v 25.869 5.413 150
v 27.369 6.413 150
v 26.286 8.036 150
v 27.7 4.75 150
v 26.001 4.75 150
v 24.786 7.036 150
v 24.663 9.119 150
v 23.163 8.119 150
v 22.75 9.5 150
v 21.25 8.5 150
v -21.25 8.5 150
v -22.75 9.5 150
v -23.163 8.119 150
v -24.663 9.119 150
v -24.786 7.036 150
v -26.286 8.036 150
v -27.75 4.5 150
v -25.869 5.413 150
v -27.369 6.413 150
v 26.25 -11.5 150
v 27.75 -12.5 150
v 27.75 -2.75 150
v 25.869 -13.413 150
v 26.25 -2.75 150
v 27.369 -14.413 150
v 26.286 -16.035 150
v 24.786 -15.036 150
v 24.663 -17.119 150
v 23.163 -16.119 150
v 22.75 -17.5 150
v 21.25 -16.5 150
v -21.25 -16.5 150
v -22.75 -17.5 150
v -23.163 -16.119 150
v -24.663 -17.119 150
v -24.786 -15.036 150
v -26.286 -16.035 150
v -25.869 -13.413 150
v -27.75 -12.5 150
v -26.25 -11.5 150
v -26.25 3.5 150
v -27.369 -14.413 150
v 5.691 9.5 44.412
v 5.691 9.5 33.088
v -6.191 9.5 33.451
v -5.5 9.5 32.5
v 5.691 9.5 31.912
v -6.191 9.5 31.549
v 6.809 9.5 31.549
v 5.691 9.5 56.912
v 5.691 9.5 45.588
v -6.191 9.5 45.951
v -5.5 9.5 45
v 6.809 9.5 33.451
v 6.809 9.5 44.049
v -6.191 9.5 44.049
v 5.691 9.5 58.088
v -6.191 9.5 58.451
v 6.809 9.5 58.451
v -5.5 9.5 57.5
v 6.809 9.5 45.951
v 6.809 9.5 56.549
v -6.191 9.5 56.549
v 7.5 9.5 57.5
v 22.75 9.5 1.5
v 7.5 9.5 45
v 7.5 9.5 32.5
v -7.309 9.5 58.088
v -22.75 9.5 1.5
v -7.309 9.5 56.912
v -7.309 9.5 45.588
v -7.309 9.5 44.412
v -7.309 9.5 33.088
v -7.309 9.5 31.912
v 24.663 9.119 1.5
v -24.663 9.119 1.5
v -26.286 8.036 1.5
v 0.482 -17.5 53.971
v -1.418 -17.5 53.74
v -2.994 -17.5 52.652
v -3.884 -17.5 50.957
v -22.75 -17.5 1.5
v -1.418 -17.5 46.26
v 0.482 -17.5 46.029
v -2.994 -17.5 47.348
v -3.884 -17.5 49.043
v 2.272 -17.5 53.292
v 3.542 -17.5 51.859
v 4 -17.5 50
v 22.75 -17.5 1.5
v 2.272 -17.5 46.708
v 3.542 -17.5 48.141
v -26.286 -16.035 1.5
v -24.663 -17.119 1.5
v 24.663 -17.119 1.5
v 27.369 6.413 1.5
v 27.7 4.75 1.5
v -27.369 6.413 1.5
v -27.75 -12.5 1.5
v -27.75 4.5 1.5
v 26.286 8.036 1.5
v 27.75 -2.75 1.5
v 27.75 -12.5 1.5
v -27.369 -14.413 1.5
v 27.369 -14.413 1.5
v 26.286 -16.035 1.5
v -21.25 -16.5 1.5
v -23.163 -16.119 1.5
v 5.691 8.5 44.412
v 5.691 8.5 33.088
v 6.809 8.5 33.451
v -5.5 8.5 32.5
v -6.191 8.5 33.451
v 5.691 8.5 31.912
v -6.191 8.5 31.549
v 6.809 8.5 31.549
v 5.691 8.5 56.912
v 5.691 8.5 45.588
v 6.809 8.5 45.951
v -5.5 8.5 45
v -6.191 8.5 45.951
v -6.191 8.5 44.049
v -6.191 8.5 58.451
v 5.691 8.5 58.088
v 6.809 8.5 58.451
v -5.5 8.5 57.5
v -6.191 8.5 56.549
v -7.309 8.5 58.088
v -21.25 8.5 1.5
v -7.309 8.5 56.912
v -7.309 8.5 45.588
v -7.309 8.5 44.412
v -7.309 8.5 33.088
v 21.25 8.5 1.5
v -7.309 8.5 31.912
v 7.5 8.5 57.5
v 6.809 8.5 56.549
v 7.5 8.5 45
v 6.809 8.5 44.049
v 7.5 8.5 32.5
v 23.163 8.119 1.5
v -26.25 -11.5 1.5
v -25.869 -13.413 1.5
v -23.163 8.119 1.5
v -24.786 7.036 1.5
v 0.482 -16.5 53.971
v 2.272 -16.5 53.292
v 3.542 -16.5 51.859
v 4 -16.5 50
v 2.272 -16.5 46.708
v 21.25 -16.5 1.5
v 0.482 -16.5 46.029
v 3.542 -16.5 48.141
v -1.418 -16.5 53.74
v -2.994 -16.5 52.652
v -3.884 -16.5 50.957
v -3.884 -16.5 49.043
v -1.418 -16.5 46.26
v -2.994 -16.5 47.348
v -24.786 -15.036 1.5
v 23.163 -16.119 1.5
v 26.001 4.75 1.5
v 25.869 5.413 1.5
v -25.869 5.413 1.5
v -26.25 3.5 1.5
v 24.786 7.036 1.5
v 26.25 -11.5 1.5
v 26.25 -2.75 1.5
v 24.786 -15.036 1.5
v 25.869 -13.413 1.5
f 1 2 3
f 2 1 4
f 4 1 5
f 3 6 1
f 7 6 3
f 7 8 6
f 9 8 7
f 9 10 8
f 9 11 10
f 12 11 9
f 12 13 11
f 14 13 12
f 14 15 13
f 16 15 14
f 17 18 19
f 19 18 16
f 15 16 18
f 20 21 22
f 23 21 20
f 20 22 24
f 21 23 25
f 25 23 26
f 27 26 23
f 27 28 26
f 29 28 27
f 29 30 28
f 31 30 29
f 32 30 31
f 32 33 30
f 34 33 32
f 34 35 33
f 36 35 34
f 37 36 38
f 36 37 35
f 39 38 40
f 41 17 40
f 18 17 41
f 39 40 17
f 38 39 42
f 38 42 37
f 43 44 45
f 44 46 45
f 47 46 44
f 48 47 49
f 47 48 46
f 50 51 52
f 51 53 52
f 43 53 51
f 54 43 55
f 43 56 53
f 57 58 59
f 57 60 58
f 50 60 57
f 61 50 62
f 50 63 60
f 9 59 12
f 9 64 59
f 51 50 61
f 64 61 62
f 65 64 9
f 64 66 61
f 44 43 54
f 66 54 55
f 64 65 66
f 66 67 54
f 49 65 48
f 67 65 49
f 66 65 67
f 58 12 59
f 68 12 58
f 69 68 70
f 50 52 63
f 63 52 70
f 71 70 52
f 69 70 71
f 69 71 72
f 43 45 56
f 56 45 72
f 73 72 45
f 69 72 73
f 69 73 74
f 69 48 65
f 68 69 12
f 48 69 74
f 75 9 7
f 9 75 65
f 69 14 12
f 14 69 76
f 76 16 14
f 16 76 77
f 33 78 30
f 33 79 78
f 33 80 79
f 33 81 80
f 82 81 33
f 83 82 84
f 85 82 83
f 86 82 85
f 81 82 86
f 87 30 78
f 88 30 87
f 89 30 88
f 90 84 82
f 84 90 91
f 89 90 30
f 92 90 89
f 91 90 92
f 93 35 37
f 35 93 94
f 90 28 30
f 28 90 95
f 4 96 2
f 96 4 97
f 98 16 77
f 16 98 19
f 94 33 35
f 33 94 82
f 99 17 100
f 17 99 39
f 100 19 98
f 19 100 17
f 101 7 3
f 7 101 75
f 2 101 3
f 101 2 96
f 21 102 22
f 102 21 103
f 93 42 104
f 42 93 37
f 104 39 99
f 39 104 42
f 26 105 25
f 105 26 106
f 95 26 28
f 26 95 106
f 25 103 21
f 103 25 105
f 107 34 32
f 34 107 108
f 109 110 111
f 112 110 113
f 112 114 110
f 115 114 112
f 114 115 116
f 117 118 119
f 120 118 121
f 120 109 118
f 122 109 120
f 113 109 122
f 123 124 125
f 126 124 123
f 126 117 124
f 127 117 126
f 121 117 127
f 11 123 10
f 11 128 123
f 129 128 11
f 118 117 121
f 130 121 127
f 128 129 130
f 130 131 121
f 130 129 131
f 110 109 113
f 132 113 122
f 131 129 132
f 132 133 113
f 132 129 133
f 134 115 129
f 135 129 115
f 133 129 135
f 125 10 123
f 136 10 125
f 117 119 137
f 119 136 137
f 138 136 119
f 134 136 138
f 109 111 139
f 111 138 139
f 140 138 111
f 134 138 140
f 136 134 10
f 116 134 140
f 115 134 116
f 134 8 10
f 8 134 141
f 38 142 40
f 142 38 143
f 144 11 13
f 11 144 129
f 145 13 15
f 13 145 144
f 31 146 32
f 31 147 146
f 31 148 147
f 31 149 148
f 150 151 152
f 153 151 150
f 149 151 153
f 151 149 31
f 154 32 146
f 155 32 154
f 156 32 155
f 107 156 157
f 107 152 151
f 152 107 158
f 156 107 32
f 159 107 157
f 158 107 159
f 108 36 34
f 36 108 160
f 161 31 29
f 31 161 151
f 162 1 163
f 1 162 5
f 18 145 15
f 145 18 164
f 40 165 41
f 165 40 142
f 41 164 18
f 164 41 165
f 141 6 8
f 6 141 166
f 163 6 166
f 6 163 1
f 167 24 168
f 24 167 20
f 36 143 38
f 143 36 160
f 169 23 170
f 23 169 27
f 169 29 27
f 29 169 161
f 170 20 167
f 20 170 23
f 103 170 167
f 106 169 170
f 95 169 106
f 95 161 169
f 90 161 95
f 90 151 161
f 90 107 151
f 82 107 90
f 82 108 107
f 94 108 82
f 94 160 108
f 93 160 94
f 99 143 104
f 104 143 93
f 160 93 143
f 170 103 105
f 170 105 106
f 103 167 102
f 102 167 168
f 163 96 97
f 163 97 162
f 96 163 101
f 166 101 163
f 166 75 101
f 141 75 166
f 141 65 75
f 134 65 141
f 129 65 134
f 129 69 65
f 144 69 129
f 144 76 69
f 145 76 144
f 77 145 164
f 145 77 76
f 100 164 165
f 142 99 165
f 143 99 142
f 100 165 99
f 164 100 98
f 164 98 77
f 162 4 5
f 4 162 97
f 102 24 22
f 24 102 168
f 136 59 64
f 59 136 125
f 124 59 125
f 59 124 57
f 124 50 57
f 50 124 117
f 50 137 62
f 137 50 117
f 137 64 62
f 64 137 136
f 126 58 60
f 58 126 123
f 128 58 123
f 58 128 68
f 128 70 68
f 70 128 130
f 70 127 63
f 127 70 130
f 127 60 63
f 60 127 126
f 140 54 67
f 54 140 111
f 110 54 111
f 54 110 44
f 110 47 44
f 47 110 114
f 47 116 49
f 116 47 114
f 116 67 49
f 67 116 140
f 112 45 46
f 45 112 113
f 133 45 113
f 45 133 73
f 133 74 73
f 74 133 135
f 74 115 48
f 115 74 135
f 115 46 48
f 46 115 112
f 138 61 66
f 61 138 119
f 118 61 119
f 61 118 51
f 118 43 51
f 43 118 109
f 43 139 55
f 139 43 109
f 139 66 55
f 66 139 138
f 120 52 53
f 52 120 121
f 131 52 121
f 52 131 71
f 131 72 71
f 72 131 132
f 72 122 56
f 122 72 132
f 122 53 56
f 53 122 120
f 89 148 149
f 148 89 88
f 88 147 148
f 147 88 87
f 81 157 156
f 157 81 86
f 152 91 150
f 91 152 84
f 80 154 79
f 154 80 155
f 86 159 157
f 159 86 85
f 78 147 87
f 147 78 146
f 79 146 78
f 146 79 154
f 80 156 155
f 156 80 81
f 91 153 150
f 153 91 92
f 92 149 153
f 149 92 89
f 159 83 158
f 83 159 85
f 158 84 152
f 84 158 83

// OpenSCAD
difference() {
    // Outer volume
    hull(){
        translate([-22.75,4.5,0]) cylinder(r=5,h=150);
        translate([-22.75,-12.5,0]) cylinder(r=5,h=150);
        translate([22.75,-12.5,0]) cylinder(r=5,h=150);
        translate([22.75,4.5,0]) cylinder(r=5,h=150);
    }

    // Inner space
    hull(){
        translate([-21.25,3.5,1]) cylinder(r=5,h=150);
        translate([-21.25,-11.5,1]) cylinder(r=5,h=150);
        translate([21.25,-11.5,1]) cylinder(r=5,h=150);
        translate([21.25,3.5,1]) cylinder(r=5,h=150);
    }
    
    // Bottom opening
    translate([0,-4,0]) scale([60,40,3]) cube(1,1,1,center=true);
    
    // Servo lever opening
    translate([24,1,80]) scale([9.5,7.5,200]) cube(1,1,1,center=true);
    
    //translate([0,8.5,13.5+32]) scale([13.5,5.5,25]) cube(1,1,1,center=true);
    
    // Servo mount cut points
    translate([6.5,10,57.5]) rotate([90,0,0]) cylinder(r = 1, h = 10, center = true);
    translate([-6.5,10,57.5]) rotate([90,0,0]) cylinder(r = 1, h = 10, center = true);
    translate([6.5,10,32.5]) rotate([90,0,0]) cylinder(r = 1, h = 10, center = true);
    translate([-6.5,10,32.5]) rotate([90,0,0]) cylinder(r = 1, h = 10, center = true);
    translate([6.5,10,45]) rotate([90,0,0]) cylinder(r = 1, h = 10, center = true);
    translate([-6.5,10,45]) rotate([90,0,0]) cylinder(r = 1, h = 10, center = true);
    
    // Servo lever screwing point
    translate([0,-10,50]) rotate([90,0,0]) cylinder(r = 4, h = 30, center = true);
    
}


module fillet(r, h) {
    translate([r / 2, r / 2, 0])

        difference() {
            cube([r + 0.01, r + 0.01, h], center = true);

            translate([r/2, r/2, 0])
                cylinder(r = r, h = h + 1, center = true);

        }
}
